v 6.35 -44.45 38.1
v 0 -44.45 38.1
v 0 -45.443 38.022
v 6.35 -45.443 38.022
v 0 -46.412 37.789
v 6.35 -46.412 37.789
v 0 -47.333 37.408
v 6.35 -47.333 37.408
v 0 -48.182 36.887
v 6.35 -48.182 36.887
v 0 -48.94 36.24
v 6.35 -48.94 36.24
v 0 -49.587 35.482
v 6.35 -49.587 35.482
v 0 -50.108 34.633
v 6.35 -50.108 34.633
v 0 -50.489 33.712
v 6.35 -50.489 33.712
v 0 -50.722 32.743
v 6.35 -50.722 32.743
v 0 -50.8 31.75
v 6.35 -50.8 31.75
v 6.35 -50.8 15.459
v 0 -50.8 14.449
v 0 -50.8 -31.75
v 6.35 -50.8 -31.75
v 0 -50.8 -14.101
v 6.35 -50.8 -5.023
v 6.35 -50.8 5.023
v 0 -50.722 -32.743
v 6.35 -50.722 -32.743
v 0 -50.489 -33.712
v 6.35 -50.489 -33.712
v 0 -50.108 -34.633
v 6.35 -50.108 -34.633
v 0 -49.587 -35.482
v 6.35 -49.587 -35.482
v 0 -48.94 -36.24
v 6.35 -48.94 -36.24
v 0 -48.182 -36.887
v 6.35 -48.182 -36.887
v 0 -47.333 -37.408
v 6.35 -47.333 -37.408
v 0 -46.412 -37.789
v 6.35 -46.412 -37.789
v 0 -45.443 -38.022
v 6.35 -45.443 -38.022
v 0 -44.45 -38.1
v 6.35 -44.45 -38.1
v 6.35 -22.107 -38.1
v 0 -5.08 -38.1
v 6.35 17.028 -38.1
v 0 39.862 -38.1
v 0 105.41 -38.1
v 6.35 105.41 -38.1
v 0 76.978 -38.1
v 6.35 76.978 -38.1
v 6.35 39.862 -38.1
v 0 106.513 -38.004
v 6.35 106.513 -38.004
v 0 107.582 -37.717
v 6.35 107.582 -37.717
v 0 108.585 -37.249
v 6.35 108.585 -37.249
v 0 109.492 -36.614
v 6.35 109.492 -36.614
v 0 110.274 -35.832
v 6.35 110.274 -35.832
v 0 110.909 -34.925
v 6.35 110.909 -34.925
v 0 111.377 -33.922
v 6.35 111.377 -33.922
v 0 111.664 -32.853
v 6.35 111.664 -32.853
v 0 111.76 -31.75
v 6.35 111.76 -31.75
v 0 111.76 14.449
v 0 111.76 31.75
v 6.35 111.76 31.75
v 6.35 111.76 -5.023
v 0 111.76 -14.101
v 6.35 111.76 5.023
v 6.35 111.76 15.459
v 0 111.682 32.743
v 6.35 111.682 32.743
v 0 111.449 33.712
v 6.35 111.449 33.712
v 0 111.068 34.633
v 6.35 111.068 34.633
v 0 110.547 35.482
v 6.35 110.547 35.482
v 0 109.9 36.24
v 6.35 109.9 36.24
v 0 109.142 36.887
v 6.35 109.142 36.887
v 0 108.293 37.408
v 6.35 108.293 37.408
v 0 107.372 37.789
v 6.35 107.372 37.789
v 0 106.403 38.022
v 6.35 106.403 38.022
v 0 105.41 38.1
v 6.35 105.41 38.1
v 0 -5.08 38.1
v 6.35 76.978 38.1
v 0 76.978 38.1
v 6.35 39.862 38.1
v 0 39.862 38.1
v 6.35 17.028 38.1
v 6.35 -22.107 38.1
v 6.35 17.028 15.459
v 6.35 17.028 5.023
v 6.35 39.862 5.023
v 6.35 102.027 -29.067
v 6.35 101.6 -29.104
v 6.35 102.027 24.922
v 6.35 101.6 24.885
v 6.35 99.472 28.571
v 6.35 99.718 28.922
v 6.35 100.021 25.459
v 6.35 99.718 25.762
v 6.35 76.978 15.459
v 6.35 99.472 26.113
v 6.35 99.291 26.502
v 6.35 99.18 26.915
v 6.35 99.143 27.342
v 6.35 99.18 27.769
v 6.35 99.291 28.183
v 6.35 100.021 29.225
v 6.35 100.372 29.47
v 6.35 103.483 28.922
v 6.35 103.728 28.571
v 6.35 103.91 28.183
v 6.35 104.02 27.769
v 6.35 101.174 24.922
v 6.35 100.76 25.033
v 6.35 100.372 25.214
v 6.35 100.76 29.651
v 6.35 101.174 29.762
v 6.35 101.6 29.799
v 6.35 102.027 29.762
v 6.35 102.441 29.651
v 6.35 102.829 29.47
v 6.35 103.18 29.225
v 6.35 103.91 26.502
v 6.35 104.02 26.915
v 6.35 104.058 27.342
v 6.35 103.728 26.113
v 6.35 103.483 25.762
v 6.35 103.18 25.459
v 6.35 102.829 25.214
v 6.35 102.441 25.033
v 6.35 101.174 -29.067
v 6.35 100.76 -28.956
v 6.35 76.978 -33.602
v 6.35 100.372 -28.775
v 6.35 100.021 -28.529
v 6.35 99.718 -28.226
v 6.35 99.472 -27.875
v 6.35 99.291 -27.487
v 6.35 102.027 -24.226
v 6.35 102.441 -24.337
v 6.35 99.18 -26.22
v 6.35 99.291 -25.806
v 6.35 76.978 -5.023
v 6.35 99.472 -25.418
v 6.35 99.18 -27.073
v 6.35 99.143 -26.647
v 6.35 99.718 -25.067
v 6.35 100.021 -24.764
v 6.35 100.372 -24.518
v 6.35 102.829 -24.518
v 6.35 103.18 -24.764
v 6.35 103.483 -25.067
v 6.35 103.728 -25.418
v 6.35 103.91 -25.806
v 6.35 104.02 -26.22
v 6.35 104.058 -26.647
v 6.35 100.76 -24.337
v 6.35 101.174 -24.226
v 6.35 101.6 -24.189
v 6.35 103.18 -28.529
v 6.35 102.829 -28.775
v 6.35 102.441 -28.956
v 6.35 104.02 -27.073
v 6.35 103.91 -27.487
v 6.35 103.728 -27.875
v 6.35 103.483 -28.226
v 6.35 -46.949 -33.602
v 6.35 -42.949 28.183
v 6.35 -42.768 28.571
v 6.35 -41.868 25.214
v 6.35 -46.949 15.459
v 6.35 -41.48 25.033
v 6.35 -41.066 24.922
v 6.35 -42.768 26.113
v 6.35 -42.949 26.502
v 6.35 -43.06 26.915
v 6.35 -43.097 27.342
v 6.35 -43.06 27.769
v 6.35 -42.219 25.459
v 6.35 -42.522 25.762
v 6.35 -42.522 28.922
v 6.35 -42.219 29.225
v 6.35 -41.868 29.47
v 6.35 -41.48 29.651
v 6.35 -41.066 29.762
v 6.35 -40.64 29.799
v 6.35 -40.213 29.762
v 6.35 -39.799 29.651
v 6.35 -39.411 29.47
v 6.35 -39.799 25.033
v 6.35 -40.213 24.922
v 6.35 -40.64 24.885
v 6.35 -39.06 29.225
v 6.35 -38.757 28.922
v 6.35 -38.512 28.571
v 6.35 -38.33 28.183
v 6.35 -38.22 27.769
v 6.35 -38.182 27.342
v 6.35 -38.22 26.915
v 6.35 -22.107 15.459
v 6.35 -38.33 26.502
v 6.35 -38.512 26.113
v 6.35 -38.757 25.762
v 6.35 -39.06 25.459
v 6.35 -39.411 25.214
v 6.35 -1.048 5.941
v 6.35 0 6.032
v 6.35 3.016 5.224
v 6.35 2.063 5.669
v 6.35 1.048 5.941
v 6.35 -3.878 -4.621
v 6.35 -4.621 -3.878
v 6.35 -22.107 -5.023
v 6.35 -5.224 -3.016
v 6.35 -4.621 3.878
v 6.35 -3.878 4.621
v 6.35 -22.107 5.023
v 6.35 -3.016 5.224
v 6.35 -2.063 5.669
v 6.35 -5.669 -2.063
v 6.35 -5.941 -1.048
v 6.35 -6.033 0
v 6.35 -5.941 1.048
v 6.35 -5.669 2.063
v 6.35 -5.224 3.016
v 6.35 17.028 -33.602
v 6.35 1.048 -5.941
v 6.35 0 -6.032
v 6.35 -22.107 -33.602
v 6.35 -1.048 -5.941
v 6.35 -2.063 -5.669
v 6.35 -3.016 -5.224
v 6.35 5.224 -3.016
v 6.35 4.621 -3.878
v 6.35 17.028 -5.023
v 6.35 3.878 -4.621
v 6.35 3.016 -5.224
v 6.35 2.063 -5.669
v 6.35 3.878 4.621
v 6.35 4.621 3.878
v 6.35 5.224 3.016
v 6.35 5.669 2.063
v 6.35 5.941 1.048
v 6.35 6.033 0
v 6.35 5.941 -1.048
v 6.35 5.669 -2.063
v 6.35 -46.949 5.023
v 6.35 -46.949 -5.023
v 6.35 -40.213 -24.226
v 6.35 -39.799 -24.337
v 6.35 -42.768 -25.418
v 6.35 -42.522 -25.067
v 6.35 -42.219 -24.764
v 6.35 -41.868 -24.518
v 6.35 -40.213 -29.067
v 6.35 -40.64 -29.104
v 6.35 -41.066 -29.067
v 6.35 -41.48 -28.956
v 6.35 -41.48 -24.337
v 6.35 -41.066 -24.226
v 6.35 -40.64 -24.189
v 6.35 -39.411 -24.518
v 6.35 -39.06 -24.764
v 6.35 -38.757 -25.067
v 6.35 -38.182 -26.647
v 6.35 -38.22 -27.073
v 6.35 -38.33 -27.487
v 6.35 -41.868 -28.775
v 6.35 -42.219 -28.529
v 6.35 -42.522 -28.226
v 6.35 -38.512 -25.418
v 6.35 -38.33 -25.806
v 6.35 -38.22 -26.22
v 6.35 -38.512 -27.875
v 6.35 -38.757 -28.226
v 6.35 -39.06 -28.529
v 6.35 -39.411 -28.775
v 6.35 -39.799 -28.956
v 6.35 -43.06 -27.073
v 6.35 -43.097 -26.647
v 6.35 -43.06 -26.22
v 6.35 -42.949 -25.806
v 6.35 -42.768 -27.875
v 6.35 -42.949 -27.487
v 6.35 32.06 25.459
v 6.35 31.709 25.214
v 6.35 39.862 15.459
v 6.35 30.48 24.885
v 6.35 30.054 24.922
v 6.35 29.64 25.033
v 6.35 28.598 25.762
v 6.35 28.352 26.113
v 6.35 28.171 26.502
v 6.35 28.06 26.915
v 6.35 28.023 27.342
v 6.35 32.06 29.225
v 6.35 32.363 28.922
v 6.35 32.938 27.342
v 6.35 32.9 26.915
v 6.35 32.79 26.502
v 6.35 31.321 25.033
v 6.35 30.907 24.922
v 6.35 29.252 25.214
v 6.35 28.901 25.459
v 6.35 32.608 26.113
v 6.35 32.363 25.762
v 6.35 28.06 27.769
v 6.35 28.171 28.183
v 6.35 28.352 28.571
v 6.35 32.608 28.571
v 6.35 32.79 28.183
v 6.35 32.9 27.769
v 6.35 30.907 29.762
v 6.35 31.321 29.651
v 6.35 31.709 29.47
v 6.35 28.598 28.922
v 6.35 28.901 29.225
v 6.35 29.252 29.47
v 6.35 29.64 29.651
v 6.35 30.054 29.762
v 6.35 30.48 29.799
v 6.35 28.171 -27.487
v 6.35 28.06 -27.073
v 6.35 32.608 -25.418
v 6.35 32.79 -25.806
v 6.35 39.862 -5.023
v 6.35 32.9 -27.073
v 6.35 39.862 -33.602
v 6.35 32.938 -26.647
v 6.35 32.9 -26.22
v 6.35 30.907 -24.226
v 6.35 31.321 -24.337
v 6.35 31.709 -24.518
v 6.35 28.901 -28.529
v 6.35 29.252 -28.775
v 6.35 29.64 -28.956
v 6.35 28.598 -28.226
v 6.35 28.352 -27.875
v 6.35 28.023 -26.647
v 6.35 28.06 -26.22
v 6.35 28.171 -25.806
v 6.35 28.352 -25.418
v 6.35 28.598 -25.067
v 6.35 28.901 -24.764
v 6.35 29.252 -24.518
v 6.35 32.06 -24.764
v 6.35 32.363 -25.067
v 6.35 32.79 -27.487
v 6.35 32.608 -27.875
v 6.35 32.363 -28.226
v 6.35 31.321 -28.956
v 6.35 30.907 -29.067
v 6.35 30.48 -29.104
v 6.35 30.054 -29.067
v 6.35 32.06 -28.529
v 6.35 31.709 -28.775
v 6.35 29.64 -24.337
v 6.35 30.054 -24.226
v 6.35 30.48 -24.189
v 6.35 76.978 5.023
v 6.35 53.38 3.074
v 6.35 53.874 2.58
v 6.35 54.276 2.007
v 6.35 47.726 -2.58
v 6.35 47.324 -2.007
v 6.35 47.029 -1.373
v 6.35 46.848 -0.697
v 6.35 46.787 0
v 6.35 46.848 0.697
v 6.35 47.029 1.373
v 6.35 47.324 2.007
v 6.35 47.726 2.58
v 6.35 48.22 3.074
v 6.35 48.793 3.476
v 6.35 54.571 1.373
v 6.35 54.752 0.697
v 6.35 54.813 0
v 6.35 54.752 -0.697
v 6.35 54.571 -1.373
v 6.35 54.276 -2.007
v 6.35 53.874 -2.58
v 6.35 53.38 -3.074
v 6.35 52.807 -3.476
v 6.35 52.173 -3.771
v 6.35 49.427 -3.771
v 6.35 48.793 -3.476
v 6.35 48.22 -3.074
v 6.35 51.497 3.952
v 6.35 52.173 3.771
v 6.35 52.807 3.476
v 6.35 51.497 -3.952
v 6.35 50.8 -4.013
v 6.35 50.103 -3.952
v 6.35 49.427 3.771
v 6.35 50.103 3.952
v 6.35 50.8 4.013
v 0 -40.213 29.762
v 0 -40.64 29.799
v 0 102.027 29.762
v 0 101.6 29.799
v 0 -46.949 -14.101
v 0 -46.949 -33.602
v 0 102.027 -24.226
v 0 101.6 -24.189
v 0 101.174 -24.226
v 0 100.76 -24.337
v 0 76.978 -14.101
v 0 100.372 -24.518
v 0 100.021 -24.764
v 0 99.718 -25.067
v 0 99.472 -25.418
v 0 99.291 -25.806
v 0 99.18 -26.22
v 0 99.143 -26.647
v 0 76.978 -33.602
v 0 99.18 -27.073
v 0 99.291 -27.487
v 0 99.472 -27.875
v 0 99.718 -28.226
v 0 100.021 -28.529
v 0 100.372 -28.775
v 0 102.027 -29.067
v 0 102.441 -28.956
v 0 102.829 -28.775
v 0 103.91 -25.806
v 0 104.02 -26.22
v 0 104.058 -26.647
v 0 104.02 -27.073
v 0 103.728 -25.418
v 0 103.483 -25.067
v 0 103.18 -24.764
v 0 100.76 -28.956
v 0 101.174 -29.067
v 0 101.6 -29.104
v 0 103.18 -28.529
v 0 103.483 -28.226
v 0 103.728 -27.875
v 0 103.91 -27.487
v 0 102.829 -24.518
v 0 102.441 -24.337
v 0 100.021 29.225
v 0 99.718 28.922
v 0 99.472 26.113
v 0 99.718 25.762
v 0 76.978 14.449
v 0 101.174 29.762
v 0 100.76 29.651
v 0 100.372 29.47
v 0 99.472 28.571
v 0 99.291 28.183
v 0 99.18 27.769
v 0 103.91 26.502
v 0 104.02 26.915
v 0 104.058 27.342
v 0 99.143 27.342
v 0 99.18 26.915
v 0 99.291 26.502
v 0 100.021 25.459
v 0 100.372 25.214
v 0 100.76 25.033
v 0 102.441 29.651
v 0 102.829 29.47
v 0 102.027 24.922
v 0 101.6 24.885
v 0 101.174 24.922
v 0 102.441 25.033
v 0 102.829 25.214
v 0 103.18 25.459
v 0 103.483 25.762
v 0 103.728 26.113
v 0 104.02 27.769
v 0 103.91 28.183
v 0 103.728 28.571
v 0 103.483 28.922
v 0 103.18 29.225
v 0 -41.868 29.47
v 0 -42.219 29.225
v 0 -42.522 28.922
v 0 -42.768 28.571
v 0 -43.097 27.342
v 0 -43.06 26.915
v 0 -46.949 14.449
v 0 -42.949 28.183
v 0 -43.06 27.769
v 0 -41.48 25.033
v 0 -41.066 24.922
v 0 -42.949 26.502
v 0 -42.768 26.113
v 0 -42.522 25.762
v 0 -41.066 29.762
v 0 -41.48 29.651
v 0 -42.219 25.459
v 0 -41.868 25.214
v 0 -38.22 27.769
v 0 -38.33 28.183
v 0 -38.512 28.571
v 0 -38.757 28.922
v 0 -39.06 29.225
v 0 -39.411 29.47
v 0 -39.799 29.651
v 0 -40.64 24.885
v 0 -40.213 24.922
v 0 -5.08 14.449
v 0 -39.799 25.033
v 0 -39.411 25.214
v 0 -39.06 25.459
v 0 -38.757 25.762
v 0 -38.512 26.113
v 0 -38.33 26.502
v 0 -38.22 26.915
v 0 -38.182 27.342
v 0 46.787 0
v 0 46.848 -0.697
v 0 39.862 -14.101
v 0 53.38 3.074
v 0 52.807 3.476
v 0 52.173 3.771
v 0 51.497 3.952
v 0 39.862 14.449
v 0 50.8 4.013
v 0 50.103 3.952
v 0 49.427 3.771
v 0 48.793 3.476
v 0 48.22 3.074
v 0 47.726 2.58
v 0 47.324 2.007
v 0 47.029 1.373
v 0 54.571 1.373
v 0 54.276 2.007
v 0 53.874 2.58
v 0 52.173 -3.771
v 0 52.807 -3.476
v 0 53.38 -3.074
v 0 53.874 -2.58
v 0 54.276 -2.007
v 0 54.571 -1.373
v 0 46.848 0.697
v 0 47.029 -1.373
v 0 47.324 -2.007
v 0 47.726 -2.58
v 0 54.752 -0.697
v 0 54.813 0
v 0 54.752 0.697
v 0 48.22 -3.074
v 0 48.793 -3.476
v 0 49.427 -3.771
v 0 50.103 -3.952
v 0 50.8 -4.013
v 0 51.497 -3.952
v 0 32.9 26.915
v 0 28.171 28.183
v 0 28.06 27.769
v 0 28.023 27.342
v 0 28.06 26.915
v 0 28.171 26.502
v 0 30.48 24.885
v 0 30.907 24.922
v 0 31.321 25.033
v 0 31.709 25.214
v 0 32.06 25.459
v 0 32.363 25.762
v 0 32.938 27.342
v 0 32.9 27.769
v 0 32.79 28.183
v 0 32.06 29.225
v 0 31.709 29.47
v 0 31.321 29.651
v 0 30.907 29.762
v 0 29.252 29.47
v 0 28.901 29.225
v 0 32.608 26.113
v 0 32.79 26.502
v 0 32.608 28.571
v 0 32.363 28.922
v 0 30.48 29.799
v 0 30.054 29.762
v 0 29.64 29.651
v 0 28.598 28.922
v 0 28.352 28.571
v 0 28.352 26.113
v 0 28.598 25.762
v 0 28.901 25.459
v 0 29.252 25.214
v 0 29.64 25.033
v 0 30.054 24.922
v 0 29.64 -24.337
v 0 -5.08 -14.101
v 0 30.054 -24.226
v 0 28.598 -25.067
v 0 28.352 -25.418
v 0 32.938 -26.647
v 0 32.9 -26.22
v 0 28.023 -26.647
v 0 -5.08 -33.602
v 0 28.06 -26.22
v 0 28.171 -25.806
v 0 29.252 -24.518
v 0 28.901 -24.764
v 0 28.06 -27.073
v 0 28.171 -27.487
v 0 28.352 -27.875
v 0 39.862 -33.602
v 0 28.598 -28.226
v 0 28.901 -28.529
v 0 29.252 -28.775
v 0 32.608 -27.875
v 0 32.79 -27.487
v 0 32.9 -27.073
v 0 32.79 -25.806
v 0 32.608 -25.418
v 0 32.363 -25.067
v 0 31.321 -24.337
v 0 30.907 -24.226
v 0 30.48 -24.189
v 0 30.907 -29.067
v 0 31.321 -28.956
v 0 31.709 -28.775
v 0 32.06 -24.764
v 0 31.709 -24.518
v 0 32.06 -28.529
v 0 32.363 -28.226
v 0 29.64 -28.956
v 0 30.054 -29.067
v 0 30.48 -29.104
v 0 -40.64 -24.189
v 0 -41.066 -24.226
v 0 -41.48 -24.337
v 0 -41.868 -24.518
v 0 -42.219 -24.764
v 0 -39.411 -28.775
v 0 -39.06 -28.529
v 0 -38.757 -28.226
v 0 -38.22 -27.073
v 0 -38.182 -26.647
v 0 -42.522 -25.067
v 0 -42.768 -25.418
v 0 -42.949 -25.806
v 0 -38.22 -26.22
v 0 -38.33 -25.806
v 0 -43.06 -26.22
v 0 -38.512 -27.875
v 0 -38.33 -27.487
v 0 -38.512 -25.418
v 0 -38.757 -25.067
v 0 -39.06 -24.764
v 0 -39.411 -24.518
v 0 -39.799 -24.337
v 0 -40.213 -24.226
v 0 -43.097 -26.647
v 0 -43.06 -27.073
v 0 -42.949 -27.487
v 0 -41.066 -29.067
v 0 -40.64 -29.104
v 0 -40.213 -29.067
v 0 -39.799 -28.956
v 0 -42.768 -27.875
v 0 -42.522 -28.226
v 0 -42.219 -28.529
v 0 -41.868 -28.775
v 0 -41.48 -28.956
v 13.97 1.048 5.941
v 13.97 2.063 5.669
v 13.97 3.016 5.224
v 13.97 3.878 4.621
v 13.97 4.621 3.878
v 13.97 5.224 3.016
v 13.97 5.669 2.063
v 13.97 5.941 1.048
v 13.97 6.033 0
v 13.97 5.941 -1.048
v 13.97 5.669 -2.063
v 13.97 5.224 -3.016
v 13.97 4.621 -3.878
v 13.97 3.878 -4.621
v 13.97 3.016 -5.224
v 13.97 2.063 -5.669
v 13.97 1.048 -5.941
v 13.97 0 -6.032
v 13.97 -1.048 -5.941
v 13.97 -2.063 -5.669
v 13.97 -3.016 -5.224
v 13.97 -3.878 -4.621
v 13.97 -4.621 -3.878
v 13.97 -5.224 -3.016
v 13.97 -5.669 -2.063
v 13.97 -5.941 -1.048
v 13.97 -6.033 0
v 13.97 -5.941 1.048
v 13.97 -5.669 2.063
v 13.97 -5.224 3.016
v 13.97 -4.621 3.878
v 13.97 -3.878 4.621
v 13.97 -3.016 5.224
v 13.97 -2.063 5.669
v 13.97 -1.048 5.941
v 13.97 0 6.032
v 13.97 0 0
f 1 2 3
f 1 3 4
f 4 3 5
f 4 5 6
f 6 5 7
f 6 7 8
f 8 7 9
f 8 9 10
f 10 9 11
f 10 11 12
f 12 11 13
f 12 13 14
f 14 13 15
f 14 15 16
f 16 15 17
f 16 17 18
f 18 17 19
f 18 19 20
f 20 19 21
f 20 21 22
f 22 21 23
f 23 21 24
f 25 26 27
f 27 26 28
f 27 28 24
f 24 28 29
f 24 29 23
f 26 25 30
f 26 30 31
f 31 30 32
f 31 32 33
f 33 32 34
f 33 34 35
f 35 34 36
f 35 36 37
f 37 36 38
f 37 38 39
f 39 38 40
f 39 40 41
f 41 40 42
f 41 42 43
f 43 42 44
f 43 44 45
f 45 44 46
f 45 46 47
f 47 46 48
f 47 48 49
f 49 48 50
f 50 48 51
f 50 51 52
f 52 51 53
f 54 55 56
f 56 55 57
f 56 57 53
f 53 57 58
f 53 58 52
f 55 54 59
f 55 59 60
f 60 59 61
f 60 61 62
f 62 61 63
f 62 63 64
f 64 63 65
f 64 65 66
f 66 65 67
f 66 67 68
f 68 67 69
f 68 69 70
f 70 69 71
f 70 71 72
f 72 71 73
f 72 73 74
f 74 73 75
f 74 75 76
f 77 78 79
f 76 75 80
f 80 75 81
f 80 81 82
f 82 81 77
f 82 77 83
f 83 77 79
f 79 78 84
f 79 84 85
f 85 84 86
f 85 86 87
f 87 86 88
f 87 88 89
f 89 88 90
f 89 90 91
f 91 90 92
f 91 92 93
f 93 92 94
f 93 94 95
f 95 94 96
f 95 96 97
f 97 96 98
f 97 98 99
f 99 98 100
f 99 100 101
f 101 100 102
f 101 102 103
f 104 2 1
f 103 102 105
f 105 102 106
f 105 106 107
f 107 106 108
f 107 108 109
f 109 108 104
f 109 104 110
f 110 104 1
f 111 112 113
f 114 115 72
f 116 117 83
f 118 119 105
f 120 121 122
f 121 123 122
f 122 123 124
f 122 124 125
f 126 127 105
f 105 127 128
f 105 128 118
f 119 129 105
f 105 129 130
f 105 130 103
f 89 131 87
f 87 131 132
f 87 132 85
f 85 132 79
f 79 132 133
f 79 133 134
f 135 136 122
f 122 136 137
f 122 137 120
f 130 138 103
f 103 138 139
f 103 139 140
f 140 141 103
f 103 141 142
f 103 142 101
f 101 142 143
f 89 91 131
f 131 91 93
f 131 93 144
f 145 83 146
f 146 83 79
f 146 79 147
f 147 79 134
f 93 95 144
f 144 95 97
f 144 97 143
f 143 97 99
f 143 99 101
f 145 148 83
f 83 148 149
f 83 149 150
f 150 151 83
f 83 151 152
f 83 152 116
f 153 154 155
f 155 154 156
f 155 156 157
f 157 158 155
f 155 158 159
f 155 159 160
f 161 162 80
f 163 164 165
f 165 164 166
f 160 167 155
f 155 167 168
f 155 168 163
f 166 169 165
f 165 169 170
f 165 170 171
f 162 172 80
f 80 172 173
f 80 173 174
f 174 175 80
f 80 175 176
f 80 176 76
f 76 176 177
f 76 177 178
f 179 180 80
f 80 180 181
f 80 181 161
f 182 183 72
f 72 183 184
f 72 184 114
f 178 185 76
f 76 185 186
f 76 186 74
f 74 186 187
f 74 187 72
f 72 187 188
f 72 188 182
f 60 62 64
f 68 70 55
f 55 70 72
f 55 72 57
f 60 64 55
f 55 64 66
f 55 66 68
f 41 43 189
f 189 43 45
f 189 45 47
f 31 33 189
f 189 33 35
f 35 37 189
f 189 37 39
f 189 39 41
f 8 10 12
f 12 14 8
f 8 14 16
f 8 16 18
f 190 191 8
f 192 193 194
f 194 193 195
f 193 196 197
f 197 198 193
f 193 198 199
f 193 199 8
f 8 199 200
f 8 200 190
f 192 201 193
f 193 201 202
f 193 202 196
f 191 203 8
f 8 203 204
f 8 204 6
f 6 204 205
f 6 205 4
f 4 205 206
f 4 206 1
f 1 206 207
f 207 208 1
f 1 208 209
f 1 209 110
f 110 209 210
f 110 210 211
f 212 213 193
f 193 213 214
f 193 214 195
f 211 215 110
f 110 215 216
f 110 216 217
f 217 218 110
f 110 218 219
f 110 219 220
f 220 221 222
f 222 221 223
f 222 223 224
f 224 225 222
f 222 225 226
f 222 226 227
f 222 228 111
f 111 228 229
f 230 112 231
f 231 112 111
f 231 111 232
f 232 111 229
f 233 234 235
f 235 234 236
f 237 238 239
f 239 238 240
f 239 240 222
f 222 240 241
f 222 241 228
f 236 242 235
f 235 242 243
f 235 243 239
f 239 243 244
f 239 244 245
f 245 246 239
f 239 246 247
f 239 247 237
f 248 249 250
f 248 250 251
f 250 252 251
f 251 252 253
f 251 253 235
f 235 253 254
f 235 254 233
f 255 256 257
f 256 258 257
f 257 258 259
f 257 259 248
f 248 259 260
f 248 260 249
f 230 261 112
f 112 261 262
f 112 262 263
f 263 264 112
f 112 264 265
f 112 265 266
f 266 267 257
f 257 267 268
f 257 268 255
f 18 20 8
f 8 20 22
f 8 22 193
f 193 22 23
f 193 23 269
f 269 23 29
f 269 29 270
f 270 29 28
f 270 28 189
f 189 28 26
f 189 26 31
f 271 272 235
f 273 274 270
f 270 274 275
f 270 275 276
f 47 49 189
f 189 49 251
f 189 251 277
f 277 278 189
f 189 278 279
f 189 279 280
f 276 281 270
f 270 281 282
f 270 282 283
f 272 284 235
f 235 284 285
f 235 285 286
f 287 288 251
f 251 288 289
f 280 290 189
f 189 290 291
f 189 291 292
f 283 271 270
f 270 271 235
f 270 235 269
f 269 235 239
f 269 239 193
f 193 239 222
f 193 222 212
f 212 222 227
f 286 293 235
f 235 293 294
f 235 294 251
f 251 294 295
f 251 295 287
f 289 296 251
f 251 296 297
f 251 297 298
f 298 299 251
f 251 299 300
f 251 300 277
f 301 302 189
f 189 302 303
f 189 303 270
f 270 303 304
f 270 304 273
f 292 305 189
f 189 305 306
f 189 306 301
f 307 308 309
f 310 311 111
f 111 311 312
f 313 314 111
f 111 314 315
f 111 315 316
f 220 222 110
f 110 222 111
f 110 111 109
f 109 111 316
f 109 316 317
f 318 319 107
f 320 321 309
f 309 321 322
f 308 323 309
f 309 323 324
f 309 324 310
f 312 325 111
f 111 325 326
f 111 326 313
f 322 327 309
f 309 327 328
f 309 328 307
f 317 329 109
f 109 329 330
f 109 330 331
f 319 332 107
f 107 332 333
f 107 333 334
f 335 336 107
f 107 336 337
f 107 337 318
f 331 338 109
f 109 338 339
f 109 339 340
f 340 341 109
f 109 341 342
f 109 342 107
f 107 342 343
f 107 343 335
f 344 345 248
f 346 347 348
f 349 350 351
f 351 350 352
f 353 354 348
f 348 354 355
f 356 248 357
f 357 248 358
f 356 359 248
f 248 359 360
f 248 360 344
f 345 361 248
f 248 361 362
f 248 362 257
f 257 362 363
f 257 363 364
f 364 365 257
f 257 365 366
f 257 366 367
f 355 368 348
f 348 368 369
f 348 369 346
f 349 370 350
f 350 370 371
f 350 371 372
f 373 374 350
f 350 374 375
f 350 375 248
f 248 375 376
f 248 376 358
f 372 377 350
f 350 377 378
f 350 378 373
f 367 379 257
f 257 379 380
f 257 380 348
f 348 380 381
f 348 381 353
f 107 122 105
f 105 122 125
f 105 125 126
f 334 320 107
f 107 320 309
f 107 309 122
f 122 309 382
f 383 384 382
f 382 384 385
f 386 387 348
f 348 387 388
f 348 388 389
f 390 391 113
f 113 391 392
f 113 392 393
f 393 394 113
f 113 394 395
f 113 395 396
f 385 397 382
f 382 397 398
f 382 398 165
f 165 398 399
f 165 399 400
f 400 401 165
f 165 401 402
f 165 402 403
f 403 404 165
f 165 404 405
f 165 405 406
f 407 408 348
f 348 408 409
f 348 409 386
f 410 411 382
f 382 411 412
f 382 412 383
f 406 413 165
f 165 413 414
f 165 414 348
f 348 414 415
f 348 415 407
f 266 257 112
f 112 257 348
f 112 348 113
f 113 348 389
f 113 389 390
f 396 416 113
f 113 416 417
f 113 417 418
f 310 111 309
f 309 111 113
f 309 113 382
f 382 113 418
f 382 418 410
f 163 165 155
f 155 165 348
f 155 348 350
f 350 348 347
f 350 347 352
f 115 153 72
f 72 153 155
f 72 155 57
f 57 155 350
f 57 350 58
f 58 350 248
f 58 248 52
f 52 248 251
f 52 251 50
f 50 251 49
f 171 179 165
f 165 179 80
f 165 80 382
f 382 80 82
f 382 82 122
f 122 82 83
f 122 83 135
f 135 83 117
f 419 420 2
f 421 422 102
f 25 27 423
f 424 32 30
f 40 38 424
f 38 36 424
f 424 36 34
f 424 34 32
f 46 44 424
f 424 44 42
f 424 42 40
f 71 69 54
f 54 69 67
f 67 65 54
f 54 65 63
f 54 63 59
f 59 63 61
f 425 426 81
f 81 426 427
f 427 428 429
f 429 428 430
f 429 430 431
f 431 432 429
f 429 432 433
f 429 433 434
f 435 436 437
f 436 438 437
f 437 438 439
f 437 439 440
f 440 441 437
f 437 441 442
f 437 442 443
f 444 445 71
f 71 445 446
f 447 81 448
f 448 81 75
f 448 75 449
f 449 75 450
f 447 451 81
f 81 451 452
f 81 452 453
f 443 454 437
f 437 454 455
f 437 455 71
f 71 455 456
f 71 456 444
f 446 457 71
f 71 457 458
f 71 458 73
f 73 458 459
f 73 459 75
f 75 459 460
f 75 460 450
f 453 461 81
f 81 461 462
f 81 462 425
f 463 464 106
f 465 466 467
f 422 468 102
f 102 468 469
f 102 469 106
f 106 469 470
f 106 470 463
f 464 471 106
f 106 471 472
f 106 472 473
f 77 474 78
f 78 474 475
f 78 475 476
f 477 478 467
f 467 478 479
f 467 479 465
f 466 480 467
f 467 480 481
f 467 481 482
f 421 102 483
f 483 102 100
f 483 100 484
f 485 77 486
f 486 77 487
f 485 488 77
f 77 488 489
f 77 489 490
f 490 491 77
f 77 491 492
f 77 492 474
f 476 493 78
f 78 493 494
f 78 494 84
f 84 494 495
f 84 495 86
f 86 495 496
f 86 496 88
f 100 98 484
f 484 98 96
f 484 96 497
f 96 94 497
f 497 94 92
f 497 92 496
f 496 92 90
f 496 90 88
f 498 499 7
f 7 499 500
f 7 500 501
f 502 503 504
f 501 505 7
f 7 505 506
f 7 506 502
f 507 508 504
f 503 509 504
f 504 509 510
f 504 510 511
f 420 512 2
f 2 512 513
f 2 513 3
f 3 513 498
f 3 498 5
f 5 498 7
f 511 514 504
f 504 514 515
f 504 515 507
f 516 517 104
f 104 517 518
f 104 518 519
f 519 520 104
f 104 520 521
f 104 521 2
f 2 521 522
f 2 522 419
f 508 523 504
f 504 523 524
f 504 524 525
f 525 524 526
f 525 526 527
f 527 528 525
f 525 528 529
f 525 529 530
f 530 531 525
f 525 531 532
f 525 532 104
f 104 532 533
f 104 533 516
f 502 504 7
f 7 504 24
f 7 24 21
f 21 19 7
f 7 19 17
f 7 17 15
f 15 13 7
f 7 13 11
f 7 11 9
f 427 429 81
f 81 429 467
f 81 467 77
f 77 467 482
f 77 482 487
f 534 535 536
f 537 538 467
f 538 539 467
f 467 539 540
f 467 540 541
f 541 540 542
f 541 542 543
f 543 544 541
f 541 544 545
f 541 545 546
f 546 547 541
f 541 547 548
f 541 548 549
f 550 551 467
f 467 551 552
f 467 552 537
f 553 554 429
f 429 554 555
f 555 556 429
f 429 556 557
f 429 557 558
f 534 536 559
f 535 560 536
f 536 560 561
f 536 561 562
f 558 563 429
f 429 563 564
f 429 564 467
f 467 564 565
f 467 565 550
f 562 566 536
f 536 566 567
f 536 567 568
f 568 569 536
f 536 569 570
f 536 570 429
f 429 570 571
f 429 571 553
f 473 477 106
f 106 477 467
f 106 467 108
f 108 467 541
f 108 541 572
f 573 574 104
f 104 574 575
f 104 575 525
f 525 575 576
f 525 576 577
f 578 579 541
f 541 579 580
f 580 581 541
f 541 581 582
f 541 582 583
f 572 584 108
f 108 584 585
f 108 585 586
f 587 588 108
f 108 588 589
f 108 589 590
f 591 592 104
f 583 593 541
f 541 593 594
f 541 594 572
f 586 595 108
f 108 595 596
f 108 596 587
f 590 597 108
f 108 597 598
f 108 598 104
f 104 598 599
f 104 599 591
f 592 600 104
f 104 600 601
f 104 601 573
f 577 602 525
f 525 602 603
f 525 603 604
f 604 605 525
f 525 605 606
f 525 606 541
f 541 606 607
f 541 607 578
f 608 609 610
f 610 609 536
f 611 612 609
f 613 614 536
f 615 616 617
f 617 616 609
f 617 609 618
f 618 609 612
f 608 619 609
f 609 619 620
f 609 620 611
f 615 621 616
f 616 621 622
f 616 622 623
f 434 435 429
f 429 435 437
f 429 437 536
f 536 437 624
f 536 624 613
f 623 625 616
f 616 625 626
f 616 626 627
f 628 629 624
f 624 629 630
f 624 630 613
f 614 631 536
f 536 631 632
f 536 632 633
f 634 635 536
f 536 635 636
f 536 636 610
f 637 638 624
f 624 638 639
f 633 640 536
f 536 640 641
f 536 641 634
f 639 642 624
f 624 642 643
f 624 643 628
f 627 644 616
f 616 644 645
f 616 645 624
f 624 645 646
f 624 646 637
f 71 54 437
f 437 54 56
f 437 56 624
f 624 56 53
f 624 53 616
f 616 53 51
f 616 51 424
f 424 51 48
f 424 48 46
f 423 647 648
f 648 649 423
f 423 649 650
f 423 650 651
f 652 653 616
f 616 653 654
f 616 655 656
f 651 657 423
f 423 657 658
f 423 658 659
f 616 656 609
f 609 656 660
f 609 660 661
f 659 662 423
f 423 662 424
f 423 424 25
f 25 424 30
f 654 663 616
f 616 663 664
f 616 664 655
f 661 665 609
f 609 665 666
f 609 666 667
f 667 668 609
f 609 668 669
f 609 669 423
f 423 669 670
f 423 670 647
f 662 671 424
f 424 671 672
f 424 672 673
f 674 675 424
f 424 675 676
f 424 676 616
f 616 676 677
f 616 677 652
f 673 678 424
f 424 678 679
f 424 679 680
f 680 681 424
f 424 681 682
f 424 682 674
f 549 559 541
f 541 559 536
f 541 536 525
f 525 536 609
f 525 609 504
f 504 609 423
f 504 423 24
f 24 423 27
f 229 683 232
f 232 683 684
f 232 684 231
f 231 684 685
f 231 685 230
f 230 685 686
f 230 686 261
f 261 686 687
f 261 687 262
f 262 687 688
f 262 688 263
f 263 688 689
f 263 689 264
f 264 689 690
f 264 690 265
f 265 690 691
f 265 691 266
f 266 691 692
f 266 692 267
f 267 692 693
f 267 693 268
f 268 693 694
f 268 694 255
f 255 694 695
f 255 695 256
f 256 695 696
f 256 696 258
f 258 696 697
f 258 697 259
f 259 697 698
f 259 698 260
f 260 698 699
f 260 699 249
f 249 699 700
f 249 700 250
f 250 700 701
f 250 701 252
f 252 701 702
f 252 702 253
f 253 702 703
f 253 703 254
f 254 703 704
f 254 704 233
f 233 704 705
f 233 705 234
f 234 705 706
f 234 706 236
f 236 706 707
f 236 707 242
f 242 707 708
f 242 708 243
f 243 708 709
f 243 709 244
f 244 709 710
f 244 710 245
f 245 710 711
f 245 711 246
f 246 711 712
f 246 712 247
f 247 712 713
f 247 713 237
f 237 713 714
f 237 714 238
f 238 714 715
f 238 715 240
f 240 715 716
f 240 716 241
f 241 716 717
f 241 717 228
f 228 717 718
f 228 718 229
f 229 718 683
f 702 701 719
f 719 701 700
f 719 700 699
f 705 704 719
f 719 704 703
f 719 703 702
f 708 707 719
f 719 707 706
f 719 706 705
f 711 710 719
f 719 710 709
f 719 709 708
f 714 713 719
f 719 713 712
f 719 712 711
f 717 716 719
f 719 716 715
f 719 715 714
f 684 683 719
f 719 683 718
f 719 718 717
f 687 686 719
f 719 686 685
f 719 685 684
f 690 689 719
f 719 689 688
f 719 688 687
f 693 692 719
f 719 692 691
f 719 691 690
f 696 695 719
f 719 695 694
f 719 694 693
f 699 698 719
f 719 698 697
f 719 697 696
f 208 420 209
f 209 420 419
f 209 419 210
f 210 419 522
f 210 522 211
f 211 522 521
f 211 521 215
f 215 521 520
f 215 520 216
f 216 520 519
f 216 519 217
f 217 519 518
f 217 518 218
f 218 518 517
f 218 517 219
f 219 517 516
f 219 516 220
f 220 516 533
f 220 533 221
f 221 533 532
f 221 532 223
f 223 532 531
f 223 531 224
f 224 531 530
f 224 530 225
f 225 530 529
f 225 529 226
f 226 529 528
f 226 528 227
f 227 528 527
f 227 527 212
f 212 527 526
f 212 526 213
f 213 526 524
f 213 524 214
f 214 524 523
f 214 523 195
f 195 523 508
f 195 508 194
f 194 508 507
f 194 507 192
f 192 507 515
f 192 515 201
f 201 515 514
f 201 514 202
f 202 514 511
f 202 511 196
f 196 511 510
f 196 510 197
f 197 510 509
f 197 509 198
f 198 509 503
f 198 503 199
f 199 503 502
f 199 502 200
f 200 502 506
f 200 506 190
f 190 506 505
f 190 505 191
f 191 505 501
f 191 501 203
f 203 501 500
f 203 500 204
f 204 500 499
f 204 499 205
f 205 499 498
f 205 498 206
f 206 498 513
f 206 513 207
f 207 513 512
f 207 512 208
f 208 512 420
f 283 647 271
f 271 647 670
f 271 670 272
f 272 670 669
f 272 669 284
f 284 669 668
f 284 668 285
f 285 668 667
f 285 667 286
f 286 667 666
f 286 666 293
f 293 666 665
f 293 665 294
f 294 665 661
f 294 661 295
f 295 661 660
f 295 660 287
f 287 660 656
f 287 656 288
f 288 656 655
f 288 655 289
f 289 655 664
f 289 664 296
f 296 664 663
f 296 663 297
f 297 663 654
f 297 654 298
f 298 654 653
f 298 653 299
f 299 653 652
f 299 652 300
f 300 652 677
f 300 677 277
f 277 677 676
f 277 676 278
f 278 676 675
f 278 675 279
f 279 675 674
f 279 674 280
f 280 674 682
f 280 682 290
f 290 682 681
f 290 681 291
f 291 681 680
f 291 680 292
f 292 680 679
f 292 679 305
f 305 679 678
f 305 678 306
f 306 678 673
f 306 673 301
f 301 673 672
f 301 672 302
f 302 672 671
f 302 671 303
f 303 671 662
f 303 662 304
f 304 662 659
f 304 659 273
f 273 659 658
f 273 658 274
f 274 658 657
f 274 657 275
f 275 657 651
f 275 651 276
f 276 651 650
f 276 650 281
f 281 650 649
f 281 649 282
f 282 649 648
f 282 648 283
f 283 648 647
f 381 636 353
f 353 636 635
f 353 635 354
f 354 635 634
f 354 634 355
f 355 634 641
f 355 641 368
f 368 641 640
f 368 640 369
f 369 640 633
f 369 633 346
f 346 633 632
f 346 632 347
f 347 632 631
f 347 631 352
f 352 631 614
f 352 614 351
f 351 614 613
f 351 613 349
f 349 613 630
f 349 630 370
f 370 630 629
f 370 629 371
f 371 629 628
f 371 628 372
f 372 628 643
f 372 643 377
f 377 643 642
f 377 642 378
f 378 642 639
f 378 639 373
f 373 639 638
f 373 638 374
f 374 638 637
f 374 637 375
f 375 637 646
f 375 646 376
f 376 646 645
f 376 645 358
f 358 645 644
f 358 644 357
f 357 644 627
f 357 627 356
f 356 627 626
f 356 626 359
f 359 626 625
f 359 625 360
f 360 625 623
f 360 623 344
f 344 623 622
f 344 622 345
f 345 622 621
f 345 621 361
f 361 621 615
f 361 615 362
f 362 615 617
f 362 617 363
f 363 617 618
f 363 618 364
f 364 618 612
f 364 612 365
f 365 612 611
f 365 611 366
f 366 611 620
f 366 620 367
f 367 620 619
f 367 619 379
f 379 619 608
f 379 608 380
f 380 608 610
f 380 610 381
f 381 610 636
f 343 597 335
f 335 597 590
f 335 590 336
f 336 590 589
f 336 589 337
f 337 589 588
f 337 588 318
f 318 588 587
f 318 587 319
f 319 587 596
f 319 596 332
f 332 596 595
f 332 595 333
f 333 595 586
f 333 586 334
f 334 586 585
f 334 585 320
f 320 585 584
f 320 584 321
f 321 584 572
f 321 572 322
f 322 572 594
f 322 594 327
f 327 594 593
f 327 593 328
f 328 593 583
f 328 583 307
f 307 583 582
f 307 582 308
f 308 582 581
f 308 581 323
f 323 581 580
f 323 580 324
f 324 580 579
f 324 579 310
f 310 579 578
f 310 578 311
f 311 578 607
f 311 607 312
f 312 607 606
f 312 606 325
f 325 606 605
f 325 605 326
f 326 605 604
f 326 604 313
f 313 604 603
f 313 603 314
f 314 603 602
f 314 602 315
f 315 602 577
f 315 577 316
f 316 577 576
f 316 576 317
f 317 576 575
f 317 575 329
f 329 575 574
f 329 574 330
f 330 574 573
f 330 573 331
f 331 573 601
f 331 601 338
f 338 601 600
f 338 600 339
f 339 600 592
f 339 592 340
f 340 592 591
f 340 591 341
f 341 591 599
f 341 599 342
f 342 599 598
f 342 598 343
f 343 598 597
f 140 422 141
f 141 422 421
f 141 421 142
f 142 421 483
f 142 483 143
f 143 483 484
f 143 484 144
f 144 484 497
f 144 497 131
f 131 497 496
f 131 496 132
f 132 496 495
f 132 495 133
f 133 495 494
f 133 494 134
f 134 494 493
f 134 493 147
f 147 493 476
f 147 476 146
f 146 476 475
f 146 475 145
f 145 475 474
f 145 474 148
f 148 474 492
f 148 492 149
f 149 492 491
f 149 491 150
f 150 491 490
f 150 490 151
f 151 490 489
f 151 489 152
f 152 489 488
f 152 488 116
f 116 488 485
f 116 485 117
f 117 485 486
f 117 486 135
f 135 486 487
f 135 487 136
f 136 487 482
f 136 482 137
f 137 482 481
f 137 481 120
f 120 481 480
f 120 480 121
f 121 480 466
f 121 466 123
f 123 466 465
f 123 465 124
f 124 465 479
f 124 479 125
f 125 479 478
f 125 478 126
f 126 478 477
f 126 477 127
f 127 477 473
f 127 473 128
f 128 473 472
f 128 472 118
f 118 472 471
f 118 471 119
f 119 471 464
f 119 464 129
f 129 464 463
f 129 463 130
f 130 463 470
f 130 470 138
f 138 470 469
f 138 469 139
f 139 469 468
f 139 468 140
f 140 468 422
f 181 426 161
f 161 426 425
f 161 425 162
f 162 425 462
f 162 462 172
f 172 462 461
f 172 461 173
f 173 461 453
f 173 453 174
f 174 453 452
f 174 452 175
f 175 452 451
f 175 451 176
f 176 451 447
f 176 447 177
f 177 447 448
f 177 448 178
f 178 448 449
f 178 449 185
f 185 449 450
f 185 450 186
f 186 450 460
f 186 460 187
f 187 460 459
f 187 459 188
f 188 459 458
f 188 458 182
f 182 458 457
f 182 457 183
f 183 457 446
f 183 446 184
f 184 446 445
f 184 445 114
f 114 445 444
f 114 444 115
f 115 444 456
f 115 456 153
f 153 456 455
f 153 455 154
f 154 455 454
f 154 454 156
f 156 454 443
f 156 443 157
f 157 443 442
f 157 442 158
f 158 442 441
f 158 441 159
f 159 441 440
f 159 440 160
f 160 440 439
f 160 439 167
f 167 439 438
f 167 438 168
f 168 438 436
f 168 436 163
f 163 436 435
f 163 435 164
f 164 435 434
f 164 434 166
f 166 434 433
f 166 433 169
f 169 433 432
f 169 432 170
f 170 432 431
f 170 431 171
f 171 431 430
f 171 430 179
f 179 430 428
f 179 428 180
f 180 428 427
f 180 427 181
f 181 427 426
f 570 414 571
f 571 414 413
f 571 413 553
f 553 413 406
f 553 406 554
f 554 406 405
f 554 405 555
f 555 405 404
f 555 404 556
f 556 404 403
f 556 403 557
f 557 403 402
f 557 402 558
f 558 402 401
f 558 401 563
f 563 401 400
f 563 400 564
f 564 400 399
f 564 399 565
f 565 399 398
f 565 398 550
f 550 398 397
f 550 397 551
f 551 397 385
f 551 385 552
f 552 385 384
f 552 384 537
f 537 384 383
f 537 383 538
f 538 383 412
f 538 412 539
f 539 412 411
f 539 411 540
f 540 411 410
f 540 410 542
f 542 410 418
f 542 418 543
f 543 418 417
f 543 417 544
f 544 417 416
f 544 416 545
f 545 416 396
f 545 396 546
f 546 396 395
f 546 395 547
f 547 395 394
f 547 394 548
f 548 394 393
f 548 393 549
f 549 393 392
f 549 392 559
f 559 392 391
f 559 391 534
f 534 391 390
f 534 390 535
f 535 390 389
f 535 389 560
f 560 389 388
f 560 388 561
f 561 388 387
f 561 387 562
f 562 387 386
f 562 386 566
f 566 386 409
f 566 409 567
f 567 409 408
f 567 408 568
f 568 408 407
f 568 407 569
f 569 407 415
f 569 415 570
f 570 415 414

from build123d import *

# Parameters (mm, degrees)
RIGHT_PLATE_DEPTH         = 6.35
SKETCH5_R                 = 6.0325
SPOOL_POST_DEPTH          = 7.62
F_8_CLEARANCE_HOLE1_D     = 4.9149
F_8_CLEARANCE_HOLE1_DEPTH = 6.35
O_0_316_DIAMETER_HOLE3_D  = 8.0264


with BuildPart() as part:
    # Sketch1 → Right plate (new body)
    with BuildSketch(Plane(origin=(0, 0, 0), x_dir=(0, 0, -1), z_dir=(1, 0, 0))):
        with BuildLine():
            Line((-31.75, -50.8), (31.75, -50.8))
            ThreePointArc((31.75, -50.8), (36.240128061, -48.940128061), (38.1, -44.45))
            Line((38.1, -44.45), (38.1, 105.41))
            ThreePointArc((38.1, 105.41), (36.240128061, 109.900128061), (31.75, 111.76))
            Line((31.75, 111.76), (-31.75, 111.76))
            ThreePointArc((-31.75, 111.76), (-36.240128061, 109.900128061), (-38.1, 105.41))
            Line((-38.1, 105.41), (-38.1, -44.45))
            ThreePointArc((-38.1, -44.45), (-36.240128061, -48.940128061), (-31.75, -50.8))
        make_face()
    extrude(amount=RIGHT_PLATE_DEPTH)

    # Sketch5 → Spool post (add)
    with BuildSketch(Plane(origin=(6.35, 0, 0), x_dir=(0, 0, -1), z_dir=(1, 0, 0))):
        Circle(SKETCH5_R)
    extrude(amount=SPOOL_POST_DEPTH)

    # #8 Clearance Hole1
    with Locations(Plane.ZY):
        with Locations((-26.646533, 101.600261), (27.342012, 101.600261), (27.342012, 30.480261), (-26.646533, 30.480261), (-26.646533, -40.639739), (27.342012, -40.639739)):
            Hole(F_8_CLEARANCE_HOLE1_D / 2, depth=F_8_CLEARANCE_HOLE1_DEPTH)

    # O (0.316) Diameter Hole3 (through all)
    with Locations(Plane(origin=(6.35, 0, 0), x_dir=(0, 0, -1), z_dir=(1, 0, 0))):
        with Locations((-675.189894138, -31.321376827), (0, 50.8)):
            Hole(O_0_316_DIAMETER_HOLE3_D / 2)


solid = part.part
